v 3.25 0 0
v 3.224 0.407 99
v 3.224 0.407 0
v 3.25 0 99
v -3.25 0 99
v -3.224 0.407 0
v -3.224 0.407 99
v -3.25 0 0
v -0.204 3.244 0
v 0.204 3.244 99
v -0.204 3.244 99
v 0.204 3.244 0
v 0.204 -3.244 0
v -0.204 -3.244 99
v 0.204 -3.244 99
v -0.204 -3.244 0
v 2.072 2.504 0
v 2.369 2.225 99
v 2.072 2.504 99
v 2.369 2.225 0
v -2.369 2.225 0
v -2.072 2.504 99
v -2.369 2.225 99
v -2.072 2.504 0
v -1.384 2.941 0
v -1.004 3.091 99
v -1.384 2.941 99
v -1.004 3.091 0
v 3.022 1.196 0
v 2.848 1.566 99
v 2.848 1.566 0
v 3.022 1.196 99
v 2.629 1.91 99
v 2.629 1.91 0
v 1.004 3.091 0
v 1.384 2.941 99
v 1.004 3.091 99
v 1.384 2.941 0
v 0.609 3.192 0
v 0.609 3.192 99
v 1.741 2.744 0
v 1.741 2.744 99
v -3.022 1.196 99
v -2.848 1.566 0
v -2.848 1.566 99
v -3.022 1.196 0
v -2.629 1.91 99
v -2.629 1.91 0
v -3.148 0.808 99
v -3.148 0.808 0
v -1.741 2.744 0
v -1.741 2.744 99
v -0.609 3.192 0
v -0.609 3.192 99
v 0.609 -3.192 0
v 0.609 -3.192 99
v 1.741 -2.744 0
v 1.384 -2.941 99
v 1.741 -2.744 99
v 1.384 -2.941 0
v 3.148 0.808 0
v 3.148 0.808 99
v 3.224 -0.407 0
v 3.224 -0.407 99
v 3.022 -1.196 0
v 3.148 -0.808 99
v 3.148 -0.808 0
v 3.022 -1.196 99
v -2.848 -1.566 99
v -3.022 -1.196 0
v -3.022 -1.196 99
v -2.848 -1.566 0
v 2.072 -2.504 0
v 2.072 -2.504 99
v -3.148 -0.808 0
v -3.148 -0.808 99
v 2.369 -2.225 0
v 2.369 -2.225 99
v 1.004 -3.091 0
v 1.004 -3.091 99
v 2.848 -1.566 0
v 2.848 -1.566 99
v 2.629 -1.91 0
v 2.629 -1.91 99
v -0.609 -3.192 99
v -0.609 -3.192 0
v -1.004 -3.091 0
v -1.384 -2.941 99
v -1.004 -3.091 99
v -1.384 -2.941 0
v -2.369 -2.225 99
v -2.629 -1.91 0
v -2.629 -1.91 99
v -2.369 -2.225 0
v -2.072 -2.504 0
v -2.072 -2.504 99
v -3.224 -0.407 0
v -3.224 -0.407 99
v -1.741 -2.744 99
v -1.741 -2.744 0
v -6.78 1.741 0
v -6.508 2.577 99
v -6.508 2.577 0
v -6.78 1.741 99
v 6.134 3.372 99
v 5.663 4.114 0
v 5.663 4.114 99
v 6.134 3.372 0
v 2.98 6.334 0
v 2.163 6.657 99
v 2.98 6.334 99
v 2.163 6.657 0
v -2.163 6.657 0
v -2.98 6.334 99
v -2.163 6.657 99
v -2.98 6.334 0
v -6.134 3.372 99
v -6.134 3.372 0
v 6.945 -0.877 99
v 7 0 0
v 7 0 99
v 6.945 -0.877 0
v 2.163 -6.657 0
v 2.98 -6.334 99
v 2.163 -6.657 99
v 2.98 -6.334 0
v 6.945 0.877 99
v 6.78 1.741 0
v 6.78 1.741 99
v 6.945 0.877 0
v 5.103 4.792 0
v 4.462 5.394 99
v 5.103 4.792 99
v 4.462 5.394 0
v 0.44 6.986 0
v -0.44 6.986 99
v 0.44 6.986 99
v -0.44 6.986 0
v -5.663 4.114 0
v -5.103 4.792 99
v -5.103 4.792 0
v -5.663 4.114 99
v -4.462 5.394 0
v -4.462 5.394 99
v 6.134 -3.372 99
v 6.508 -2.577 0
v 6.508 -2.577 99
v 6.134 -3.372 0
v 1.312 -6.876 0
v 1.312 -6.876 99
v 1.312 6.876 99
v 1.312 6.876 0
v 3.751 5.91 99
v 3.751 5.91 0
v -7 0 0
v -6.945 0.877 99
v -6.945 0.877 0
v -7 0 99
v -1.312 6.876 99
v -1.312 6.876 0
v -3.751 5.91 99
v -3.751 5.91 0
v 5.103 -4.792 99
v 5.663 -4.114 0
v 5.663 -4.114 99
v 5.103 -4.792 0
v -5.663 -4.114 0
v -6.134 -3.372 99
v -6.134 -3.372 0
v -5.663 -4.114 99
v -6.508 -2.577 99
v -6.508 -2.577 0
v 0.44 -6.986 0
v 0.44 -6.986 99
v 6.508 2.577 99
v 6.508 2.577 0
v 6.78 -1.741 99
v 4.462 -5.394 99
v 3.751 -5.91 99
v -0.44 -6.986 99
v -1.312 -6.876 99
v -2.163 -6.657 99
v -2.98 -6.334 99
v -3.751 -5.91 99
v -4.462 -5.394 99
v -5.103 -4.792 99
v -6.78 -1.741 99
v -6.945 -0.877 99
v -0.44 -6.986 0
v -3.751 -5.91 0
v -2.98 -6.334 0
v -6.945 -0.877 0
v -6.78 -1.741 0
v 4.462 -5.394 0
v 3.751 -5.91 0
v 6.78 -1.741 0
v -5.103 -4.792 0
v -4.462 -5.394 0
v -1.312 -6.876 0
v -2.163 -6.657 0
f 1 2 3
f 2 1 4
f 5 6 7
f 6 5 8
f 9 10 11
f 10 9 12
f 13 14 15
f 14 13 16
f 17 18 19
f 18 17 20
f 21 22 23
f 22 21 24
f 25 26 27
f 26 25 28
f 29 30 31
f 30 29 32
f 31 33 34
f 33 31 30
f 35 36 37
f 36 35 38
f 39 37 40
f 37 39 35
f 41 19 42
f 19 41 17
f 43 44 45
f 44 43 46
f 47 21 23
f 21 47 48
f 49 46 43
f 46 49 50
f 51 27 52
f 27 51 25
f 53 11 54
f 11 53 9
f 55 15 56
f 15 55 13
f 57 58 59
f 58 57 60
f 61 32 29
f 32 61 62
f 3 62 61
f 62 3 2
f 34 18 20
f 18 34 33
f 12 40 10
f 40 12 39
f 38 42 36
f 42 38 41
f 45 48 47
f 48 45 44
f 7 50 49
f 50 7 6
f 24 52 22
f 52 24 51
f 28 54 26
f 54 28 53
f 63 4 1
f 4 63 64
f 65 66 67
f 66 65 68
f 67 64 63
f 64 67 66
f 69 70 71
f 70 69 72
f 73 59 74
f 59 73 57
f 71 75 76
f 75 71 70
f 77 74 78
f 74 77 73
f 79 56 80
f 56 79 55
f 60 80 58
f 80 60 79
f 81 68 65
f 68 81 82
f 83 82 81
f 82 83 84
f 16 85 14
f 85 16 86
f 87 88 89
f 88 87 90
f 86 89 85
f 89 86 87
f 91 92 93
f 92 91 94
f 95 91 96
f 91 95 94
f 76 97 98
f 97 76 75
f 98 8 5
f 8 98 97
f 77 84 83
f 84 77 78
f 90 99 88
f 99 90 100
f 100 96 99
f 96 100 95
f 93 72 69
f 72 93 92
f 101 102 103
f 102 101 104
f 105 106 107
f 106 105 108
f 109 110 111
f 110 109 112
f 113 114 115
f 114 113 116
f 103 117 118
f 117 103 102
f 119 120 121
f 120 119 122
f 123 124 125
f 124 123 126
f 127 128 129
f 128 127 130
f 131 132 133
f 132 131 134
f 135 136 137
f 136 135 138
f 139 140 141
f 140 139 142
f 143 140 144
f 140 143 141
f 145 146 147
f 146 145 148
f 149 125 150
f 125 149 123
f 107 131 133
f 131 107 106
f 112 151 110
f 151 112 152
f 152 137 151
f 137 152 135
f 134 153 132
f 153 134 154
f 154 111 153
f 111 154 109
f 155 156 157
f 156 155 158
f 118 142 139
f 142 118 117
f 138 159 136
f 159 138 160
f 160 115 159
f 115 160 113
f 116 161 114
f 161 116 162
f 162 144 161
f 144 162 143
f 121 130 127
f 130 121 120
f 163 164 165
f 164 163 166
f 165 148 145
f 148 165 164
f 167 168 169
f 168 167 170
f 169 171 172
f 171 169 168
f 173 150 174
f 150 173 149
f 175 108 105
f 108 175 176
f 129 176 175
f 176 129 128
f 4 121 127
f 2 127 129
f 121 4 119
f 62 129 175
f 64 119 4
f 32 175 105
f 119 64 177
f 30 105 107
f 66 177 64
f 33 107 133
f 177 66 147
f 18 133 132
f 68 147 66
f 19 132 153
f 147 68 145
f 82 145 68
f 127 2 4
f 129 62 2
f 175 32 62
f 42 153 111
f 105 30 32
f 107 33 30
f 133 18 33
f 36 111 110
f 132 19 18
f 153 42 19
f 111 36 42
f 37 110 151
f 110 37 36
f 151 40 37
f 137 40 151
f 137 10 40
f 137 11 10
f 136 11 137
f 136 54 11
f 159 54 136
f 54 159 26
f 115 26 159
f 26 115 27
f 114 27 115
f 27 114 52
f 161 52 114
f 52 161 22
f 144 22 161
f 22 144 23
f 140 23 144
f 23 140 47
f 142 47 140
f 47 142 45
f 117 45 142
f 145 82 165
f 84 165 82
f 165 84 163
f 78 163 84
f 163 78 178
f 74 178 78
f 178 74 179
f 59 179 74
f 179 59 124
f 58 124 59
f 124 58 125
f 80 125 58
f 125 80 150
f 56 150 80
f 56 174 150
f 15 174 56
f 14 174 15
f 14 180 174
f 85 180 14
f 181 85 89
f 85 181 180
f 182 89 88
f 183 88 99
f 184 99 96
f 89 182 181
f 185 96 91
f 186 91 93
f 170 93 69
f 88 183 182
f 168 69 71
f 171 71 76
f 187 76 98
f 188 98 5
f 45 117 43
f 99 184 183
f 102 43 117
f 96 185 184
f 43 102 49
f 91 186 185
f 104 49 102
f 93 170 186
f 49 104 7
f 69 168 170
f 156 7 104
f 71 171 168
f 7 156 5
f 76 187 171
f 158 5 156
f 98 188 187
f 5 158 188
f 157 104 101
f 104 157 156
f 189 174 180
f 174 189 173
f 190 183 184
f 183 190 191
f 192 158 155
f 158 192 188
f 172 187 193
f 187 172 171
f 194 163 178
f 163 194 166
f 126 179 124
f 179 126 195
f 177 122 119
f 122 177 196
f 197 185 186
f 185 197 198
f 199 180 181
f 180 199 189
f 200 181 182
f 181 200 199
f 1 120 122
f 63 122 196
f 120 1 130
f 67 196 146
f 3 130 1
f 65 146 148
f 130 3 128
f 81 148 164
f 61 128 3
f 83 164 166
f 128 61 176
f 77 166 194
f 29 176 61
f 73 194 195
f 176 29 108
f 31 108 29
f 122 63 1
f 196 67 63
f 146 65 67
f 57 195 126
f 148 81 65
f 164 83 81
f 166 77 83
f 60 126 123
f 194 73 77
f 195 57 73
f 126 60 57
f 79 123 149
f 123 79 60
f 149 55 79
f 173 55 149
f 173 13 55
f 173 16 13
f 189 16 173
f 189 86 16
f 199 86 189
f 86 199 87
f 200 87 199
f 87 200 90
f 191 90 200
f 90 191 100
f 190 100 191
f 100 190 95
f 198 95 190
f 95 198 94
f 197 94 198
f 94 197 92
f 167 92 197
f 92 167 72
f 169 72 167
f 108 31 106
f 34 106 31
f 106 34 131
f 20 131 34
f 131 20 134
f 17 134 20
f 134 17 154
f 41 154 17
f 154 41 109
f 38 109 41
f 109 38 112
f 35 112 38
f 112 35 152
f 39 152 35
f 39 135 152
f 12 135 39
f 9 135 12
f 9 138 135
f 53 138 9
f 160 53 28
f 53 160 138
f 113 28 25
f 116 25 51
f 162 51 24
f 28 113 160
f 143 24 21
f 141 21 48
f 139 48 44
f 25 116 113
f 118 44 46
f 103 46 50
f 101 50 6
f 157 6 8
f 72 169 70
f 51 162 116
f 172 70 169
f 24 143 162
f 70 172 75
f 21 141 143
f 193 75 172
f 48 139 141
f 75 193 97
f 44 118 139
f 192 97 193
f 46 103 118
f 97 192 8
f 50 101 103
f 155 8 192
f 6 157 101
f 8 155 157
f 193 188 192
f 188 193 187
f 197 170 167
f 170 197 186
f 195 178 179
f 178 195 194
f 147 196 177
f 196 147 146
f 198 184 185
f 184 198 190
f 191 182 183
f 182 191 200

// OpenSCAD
$fn = 50;


difference() {
	union() {
		cylinder(h = 99, r = 7.0000000000);
	}
	union() {
		translate(v = [0.0000000000, 0.0000000000, -100.0000000000]) {
			cylinder(h = 200, r = 3.2500000000);
		}
		translate(v = [0.0000000000, 0.0000000000, -100.0000000000]) {
			cylinder(h = 200, r = 3.2500000000);
		}
		translate(v = [0.0000000000, 0.0000000000, -100.0000000000]) {
			cylinder(h = 200, r = 3.2500000000);
		}
		translate(v = [0.0000000000, 0.0000000000, -100.0000000000]) {
			cylinder(h = 200, r = 3.2500000000);
		}
	}
}
